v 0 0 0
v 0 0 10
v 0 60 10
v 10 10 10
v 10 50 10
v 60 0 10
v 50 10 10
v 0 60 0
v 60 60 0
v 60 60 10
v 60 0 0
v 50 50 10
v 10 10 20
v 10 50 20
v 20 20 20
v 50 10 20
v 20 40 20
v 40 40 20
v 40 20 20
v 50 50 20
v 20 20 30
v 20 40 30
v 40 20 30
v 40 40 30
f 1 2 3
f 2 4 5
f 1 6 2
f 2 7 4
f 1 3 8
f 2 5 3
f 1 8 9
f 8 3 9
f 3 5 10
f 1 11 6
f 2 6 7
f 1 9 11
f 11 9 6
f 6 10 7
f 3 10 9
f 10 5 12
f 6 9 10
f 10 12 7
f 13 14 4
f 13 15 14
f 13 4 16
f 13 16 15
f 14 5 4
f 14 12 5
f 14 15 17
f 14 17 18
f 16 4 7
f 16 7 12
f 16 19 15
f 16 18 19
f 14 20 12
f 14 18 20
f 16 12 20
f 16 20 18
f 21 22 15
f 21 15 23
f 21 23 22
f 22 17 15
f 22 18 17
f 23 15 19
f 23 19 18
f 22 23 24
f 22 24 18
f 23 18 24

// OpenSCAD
// Bottom base
cube([60, 60, 10]);

// Middle layer
translate([10, 10, 10]) {
    cube([40, 40, 10]);
}

// Top layer
translate([20, 20, 20]) {
    cube([20, 20, 10]);
}
